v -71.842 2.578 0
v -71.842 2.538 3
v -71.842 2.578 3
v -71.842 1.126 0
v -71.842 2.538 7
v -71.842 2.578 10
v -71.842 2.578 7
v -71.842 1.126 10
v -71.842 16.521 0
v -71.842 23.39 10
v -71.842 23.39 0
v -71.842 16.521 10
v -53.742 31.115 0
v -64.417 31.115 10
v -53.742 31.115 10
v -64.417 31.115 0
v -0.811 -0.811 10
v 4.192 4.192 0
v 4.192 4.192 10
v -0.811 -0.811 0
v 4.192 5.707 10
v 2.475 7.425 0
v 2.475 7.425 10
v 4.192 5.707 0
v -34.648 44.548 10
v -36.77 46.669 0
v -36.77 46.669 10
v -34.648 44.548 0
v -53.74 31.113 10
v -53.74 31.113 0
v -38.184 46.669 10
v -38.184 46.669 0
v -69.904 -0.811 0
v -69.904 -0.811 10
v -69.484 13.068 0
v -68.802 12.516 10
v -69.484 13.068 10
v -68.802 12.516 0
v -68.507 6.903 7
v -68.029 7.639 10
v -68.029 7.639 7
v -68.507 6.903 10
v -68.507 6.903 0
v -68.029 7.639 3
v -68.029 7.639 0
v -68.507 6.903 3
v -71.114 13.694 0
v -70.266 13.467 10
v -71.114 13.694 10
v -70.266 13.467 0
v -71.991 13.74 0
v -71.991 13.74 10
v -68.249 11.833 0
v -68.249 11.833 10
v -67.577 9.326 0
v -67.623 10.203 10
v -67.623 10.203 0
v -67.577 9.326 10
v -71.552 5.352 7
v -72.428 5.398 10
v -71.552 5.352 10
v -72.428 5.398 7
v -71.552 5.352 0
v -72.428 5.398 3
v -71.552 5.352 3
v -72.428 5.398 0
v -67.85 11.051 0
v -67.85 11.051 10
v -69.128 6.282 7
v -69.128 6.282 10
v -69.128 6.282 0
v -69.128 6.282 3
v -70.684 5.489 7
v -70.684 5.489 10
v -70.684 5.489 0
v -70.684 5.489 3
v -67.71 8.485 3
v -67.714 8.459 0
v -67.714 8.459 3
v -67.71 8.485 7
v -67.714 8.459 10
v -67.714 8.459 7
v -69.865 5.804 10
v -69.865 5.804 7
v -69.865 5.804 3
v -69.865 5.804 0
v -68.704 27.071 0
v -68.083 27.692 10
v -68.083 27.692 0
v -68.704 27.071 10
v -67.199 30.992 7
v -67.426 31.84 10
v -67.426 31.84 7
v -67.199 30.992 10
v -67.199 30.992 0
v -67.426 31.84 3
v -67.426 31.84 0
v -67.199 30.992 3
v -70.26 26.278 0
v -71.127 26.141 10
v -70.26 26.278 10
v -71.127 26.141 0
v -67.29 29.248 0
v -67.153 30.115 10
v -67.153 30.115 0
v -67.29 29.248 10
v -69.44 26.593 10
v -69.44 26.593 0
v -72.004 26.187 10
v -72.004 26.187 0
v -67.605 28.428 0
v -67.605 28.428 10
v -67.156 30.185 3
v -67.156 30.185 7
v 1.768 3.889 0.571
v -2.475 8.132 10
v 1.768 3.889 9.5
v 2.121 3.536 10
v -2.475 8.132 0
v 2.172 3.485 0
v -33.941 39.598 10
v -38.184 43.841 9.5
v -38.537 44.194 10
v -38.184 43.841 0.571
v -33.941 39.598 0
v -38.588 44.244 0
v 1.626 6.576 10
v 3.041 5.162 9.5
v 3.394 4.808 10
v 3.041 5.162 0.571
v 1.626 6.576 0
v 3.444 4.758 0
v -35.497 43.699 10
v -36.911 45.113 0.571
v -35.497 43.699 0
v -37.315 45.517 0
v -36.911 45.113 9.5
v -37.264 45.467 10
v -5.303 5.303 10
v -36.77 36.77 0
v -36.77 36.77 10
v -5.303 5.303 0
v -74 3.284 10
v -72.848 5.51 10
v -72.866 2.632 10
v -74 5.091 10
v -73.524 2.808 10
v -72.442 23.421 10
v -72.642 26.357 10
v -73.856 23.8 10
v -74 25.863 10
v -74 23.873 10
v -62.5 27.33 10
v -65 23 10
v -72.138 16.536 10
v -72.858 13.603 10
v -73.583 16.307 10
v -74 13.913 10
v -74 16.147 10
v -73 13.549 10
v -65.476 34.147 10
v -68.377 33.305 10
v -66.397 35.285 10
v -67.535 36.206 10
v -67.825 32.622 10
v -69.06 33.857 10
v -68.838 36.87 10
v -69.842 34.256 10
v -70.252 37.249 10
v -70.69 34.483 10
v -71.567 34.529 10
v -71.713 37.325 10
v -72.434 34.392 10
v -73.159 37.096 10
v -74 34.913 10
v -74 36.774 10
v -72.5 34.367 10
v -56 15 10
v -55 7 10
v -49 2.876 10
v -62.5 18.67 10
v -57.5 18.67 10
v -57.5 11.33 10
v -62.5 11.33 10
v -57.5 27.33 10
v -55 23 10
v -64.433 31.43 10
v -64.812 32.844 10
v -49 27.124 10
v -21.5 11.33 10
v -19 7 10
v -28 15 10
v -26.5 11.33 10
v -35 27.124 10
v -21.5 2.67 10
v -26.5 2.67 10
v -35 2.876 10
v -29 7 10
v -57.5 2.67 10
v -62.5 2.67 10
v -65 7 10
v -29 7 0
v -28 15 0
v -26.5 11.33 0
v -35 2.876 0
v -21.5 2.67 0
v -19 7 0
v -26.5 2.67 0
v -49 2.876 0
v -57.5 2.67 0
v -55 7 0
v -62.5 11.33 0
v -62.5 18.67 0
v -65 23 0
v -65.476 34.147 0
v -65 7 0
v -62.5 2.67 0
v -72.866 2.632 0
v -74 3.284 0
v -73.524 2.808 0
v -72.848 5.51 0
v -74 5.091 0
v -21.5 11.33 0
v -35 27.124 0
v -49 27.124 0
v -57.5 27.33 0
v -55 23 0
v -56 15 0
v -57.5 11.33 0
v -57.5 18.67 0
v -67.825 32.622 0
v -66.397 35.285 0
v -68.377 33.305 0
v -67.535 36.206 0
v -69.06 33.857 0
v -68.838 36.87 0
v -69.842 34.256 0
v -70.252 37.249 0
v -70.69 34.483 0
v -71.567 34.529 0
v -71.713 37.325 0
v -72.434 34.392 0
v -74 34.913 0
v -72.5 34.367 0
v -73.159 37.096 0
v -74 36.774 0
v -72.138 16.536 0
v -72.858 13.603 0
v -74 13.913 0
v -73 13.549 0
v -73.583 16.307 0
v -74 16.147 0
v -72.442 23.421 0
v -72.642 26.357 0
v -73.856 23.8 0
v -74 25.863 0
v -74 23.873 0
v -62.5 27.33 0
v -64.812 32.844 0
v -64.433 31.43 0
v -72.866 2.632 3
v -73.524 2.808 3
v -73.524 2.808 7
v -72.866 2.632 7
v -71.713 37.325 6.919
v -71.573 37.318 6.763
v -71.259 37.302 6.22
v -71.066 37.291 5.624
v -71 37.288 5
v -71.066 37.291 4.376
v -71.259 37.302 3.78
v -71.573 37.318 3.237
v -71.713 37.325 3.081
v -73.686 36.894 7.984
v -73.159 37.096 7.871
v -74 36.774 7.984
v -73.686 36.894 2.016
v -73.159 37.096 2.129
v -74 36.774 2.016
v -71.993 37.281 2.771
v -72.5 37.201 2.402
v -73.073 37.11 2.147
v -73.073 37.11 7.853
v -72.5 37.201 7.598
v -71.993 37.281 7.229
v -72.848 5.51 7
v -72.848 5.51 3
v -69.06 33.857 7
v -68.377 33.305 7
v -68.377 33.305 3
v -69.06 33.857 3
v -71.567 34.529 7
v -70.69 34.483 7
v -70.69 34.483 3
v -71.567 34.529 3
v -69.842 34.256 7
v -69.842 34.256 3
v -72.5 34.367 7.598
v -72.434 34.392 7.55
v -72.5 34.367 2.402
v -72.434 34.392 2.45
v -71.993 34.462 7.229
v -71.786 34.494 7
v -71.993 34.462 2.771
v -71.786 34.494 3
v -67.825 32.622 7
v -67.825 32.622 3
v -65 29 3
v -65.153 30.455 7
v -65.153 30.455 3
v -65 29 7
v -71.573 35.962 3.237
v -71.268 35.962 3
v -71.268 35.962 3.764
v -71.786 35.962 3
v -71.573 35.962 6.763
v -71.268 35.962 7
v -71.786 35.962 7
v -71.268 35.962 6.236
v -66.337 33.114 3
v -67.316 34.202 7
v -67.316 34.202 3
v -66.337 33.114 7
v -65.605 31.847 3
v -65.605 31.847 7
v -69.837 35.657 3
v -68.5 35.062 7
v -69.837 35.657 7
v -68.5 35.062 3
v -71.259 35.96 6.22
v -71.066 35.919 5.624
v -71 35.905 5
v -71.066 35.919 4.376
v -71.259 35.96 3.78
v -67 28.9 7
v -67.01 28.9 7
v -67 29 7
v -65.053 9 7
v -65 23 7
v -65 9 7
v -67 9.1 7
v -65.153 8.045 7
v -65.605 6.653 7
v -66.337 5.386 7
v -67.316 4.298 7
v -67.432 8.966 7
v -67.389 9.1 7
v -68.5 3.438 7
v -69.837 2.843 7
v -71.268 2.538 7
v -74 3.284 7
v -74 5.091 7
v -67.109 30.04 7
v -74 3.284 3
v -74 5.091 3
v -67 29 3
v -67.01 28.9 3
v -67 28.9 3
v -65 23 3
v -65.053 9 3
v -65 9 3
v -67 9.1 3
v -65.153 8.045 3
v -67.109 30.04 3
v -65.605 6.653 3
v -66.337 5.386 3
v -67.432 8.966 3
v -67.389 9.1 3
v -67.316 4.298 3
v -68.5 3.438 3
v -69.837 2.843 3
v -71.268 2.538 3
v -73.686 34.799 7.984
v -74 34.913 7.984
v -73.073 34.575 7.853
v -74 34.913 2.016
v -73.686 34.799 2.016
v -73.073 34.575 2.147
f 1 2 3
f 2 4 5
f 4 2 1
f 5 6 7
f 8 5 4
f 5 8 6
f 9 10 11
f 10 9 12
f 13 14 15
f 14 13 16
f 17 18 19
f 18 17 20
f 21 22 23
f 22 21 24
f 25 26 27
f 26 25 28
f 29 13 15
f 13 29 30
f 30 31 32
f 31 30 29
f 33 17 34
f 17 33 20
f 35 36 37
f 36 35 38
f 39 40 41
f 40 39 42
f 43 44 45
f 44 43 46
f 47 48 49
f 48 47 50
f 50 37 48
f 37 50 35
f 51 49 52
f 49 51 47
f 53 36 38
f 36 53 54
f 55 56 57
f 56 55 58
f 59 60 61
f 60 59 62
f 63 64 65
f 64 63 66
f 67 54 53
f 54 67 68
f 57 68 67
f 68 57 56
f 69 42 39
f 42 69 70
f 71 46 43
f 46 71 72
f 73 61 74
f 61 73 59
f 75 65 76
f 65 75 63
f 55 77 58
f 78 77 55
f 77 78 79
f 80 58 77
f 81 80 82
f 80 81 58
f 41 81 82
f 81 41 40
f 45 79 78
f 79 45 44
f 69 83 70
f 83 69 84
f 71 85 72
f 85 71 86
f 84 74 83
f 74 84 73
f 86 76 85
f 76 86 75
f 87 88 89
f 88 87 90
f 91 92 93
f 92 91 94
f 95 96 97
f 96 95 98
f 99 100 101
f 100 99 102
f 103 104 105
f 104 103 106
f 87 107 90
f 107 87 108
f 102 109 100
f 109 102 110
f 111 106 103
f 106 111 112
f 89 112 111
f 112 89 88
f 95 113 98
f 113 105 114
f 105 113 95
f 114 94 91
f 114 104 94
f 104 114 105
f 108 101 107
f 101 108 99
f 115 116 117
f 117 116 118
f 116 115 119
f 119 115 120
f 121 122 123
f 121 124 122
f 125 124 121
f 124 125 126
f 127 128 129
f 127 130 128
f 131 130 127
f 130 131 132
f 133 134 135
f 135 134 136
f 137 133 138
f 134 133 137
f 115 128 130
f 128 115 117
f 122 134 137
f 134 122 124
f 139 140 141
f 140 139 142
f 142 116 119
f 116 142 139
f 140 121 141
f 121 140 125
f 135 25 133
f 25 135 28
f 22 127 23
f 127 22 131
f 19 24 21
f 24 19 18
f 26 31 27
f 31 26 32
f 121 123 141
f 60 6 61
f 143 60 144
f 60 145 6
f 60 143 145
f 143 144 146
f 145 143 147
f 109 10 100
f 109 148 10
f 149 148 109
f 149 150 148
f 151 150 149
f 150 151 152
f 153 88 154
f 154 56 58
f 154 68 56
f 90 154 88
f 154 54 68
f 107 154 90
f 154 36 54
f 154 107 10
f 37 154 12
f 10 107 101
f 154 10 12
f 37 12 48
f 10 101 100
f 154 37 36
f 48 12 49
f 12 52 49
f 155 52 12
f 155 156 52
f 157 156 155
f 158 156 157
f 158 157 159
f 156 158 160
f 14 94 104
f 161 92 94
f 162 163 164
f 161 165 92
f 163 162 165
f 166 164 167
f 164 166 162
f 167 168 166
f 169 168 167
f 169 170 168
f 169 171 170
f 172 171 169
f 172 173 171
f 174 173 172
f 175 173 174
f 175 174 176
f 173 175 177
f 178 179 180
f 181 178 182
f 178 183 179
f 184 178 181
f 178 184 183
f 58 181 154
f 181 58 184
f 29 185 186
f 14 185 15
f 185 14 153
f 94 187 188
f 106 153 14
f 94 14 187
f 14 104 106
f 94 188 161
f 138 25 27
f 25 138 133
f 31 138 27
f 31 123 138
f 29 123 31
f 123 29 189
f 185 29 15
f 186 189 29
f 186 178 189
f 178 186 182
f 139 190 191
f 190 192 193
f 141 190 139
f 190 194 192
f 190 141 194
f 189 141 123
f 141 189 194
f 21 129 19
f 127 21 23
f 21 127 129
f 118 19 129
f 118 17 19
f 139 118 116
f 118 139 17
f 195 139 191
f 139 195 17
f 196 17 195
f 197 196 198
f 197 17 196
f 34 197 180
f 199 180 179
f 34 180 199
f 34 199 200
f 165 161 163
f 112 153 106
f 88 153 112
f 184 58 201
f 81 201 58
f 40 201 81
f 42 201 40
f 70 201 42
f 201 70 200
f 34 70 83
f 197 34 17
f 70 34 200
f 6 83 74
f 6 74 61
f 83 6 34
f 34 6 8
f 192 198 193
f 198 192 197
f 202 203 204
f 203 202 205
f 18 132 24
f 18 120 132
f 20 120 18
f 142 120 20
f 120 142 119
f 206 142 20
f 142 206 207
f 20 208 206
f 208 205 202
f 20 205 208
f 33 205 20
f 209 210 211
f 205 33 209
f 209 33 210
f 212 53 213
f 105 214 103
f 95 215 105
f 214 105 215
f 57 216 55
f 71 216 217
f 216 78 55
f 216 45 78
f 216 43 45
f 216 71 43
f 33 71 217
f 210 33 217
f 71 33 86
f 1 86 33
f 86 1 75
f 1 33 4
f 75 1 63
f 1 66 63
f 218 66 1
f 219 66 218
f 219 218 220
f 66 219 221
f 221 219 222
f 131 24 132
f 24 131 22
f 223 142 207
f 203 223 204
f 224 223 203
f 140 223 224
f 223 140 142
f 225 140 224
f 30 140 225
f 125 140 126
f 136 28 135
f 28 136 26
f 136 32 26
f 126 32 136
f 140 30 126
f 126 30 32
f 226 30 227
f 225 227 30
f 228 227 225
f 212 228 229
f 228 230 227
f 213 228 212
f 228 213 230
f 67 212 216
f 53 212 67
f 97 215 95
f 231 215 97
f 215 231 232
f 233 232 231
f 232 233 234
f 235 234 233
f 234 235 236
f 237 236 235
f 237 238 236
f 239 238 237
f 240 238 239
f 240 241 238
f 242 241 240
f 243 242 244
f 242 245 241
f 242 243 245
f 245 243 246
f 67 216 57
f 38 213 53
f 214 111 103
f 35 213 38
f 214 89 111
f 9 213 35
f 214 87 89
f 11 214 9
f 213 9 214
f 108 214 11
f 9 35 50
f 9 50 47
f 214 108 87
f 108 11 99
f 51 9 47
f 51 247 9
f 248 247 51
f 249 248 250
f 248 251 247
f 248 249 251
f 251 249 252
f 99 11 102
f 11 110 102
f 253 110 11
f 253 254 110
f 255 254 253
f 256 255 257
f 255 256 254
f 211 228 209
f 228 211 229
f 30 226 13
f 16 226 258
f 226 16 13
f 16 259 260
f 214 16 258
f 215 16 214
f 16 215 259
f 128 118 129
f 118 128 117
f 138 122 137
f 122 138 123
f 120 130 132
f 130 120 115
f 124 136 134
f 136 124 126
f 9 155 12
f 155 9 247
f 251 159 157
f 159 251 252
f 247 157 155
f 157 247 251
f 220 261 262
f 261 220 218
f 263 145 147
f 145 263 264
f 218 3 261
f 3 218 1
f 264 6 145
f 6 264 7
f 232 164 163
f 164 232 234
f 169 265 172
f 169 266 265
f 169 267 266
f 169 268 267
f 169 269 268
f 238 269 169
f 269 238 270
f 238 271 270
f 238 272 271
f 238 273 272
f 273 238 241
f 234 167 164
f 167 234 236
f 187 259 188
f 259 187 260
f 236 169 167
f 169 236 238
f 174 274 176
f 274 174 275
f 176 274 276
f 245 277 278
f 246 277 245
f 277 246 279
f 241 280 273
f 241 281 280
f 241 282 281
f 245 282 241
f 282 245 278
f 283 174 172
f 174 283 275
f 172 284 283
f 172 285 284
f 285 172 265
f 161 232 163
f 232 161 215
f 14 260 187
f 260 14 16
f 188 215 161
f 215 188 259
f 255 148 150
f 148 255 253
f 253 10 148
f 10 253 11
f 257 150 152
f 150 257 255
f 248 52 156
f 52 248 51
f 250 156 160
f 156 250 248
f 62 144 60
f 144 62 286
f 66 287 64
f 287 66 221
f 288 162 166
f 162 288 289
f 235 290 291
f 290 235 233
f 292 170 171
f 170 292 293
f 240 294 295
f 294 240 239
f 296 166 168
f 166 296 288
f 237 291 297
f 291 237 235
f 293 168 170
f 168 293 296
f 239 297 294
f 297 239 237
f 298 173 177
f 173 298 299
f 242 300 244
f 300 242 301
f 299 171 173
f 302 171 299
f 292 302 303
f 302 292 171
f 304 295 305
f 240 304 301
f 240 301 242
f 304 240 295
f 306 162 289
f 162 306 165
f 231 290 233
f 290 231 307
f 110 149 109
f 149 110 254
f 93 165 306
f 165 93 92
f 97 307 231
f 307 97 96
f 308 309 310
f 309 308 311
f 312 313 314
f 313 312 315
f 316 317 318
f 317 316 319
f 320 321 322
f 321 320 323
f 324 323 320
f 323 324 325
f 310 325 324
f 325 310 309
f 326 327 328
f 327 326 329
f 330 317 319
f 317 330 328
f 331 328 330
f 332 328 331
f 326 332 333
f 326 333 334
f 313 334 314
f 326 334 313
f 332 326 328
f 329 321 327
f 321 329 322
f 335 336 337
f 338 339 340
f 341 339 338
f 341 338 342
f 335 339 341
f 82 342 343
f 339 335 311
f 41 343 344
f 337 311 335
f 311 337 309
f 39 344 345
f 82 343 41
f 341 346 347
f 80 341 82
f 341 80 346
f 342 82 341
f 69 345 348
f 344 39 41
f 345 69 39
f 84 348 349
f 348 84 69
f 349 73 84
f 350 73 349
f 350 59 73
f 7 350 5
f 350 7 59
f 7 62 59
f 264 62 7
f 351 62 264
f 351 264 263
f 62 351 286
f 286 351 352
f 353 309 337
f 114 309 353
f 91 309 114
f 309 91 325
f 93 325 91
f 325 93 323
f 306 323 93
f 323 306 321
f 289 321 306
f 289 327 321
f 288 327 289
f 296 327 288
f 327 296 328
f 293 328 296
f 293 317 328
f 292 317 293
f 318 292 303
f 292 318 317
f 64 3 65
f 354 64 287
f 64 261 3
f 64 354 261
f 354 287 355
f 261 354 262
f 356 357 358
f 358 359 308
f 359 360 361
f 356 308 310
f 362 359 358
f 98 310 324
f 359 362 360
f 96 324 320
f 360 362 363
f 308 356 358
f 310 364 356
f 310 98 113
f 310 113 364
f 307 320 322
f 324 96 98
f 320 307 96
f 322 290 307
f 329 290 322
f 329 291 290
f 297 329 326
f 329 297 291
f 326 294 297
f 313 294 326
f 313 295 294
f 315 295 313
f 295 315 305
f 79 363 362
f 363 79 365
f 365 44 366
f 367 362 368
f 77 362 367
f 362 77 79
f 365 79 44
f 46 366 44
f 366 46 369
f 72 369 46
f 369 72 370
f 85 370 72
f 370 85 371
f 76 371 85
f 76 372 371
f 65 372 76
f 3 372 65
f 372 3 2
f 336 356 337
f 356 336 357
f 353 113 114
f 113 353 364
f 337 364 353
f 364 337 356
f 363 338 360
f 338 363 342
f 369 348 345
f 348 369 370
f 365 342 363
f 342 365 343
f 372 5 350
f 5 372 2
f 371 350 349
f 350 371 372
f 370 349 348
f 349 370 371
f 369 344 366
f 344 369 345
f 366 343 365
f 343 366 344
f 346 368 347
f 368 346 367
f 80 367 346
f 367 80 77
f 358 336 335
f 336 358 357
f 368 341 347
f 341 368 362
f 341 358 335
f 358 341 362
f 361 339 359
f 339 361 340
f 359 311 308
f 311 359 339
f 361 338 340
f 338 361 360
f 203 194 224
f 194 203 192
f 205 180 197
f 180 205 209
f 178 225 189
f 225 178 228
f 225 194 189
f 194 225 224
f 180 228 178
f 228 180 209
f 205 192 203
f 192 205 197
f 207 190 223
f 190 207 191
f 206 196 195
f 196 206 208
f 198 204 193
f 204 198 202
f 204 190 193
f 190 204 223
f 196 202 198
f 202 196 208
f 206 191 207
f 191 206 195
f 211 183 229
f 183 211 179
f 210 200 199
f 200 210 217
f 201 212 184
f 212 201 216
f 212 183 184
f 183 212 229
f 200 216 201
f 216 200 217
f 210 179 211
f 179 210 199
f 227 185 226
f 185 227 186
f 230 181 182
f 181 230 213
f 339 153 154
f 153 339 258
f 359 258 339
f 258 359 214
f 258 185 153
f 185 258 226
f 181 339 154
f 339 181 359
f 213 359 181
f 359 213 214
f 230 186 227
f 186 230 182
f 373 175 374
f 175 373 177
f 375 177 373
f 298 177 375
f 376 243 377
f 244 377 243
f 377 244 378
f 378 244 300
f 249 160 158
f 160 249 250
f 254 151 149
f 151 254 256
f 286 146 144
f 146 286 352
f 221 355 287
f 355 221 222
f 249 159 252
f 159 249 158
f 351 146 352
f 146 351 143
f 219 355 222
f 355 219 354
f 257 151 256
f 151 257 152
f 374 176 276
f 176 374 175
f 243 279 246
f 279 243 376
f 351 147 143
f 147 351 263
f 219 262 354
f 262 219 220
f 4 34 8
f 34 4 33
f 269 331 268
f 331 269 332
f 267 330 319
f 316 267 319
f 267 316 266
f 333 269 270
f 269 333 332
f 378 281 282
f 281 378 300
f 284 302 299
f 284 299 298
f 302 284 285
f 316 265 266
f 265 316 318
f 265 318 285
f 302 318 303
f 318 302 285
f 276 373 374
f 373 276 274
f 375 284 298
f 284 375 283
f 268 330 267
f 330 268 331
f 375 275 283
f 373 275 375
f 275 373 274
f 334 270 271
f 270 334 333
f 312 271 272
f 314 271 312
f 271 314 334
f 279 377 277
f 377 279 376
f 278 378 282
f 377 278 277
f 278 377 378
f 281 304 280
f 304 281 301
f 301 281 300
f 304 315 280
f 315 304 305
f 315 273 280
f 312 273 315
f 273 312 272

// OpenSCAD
//Original Prusa

// PRUSA iteration3
// lcd-support-A
// GNU GPL v3
// Josef Průša <iam@josefprusa.cz> and contributors
// http://www.reprap.org/wiki/Prusa_Mendel
// http://prusamendel.org




module body(){

difference() {
    
    union(){
        translate( [ -55, -2 , 0 ] ) cube( [ 69 , 81 , 10 ] ); 
    }
    
    union (){

    // outer body shape
    translate( [ -69.6, 32, -1 ] ) rotate([0,0,45]) cube( [ 60 , 53 , 15 ] ); 
    translate( [ 13.7, 89.7, -1 ] ) rotate([0,0,135]) cube( [ 60 , 42 , 15 ] );
    translate( [ -19, -9, -1 ] ) cube( [ 60 , 9 , 15 ] );   
    translate( [ 7, -3, -1 ] ) cube( [ 60 , 68 , 16 ] );  
    translate( [ -16, 60, -1 ] ) cube( [ 60 , 50 , 15 ] );
    translate( [ -41, -45, -1 ] ) rotate([0,0,45]) cube( [ 60 , 80 , 13 ] );  
        
    // threaded rods opening
    translate( [ -44 , 57.5 , -1 ] ) cylinder( h = 17, r = 4.2, $fn=30);  
    translate( [ -29 , 71.9 , -1 ] ) cylinder( h = 17, r = 4.2, $fn=30);  

    // pcb cout out
    translate( [ 4 , 1.5 , -1 ] ) cube( [ 1.8 , 56.5 , 17 ] ); 
    translate( [ 0 , 7.5 , -1 ] ) cube( [ 5.8 , 44.5 , 17 ] ); 
    translate( [ 4.8 , 3.5 , -1 ] ) cube( [ 5.8 , 52.5 , 17 ] );

    translate( [ 8 , -5 , -1 ] ) rotate([0,0,45]) cube( [ 5 , 5 , 17 ] );
    translate( [ 8 , 58 , -1 ] ) rotate([0,0,45]) cube( [ 5 , 5 , 17 ] );
        
    }

    // pcb inserts
    translate( [ 4, 3 , 8 ] ) rotate([45,0,0]) cube( [ 1.8 , 5 , 5 ] ); 
    translate( [ 4, 56.5 , 8 ] ) rotate([45,0,0]) cube( [ 1.8 , 5 , 5 ] );     
    translate( [ 4, 3 , -5 ] ) rotate([45,0,0]) cube( [ 1.8 , 5 , 5 ] ); 
    translate( [ 4, 56.5 , -5 ] ) rotate([45,0,0]) cube( [ 1.8 , 5 , 5 ] );     
    
}

 
difference(){
    union(){
        translate( [ -44 , 57.5 , 0 ] ) cylinder( h = 10, r = 7, $fn=30); 
        translate( [ -29 , 71.9 , 0 ] ) cylinder( h = 10, r =7 , $fn=30); 
    }
        translate( [ -44 , 57.5 , -1 ] ) cylinder( h = 17, r = 4.2, $fn=30);
        translate( [ -29 , 71.9 , -1 ] ) cylinder( h = 17, r = 4.2, $fn=30);
}
}



module ziptie()
{
difference()
{
  union(){
    difference(){
        translate( [ -72 , 29 , 3 ] ) cylinder( h = 4, r = 7, $fn=30);
        translate( [ -72 , 29 , 3 ] ) cylinder( h = 4, r = 5, $fn=30);
    }
    difference(){
        translate( [ -72 , 9.5 , 3 ] ) cylinder( h = 4, r = 7, $fn=30);
        translate( [ -72 , 11 , 3 ] ) cylinder( h = 4, r = 5, $fn=30); 
    }
    }
    translate( [ -80 , 9.1 , 3 ] )  cube( [ 15 , 19.8 , 4 ] );  
    }
    
    translate( [ -67 , 9 , 3 ] )  cube( [ 2 , 20 , 4 ] ); 
}
    




difference() {
    
rotate([0,0,45]) body();

// lightening holes
translate( [ -42 , 15 , -1 ] ) cylinder( h = 15, r = 14, $fn=6);  
translate( [ -24 , 7 , -1 ] ) cylinder( h = 15, r = 5, $fn=6);  
translate( [ -60 , 7 , -1 ] ) cylinder( h = 15, r = 5, $fn=6);  
translate( [ -60 , 23 , -1 ] ) cylinder( h = 15, r = 5, $fn=6);  
    
// threaded rods corners
translate( [ -71 , 28.5 , -1 ] ) rotate([0,0,70]) cube( [ 5 , 10 , 15 ] );   
translate( [ -71 , 7.5 , -1 ] ) rotate([0,0,70]) cube( [ 5 , 10 , 15 ] );      
translate( [ -80 , 29, -1 ] ) rotate([0,0,-70]) cube( [ 5 , 10 , 15 ] );   
translate( [ -82 , 7.5 , -1 ] ) rotate([0,0,-70]) cube( [ 5 , 10 , 15 ] );      
translate( [ -86 , 0 , -1 ] ) cube( [ 12 , 50 , 15 ] );  
translate( [ -83 , -16 , -1 ] ) rotate([0,0,45]) cube( [ 20 , 20 , 15 ] );  

ziptie();
// ziptie head cutout
translate( [ -74 , 38 , 5 ] ) rotate([90,0,0]) cylinder( h = 5, r = 3, $fn=30);  
    


}
